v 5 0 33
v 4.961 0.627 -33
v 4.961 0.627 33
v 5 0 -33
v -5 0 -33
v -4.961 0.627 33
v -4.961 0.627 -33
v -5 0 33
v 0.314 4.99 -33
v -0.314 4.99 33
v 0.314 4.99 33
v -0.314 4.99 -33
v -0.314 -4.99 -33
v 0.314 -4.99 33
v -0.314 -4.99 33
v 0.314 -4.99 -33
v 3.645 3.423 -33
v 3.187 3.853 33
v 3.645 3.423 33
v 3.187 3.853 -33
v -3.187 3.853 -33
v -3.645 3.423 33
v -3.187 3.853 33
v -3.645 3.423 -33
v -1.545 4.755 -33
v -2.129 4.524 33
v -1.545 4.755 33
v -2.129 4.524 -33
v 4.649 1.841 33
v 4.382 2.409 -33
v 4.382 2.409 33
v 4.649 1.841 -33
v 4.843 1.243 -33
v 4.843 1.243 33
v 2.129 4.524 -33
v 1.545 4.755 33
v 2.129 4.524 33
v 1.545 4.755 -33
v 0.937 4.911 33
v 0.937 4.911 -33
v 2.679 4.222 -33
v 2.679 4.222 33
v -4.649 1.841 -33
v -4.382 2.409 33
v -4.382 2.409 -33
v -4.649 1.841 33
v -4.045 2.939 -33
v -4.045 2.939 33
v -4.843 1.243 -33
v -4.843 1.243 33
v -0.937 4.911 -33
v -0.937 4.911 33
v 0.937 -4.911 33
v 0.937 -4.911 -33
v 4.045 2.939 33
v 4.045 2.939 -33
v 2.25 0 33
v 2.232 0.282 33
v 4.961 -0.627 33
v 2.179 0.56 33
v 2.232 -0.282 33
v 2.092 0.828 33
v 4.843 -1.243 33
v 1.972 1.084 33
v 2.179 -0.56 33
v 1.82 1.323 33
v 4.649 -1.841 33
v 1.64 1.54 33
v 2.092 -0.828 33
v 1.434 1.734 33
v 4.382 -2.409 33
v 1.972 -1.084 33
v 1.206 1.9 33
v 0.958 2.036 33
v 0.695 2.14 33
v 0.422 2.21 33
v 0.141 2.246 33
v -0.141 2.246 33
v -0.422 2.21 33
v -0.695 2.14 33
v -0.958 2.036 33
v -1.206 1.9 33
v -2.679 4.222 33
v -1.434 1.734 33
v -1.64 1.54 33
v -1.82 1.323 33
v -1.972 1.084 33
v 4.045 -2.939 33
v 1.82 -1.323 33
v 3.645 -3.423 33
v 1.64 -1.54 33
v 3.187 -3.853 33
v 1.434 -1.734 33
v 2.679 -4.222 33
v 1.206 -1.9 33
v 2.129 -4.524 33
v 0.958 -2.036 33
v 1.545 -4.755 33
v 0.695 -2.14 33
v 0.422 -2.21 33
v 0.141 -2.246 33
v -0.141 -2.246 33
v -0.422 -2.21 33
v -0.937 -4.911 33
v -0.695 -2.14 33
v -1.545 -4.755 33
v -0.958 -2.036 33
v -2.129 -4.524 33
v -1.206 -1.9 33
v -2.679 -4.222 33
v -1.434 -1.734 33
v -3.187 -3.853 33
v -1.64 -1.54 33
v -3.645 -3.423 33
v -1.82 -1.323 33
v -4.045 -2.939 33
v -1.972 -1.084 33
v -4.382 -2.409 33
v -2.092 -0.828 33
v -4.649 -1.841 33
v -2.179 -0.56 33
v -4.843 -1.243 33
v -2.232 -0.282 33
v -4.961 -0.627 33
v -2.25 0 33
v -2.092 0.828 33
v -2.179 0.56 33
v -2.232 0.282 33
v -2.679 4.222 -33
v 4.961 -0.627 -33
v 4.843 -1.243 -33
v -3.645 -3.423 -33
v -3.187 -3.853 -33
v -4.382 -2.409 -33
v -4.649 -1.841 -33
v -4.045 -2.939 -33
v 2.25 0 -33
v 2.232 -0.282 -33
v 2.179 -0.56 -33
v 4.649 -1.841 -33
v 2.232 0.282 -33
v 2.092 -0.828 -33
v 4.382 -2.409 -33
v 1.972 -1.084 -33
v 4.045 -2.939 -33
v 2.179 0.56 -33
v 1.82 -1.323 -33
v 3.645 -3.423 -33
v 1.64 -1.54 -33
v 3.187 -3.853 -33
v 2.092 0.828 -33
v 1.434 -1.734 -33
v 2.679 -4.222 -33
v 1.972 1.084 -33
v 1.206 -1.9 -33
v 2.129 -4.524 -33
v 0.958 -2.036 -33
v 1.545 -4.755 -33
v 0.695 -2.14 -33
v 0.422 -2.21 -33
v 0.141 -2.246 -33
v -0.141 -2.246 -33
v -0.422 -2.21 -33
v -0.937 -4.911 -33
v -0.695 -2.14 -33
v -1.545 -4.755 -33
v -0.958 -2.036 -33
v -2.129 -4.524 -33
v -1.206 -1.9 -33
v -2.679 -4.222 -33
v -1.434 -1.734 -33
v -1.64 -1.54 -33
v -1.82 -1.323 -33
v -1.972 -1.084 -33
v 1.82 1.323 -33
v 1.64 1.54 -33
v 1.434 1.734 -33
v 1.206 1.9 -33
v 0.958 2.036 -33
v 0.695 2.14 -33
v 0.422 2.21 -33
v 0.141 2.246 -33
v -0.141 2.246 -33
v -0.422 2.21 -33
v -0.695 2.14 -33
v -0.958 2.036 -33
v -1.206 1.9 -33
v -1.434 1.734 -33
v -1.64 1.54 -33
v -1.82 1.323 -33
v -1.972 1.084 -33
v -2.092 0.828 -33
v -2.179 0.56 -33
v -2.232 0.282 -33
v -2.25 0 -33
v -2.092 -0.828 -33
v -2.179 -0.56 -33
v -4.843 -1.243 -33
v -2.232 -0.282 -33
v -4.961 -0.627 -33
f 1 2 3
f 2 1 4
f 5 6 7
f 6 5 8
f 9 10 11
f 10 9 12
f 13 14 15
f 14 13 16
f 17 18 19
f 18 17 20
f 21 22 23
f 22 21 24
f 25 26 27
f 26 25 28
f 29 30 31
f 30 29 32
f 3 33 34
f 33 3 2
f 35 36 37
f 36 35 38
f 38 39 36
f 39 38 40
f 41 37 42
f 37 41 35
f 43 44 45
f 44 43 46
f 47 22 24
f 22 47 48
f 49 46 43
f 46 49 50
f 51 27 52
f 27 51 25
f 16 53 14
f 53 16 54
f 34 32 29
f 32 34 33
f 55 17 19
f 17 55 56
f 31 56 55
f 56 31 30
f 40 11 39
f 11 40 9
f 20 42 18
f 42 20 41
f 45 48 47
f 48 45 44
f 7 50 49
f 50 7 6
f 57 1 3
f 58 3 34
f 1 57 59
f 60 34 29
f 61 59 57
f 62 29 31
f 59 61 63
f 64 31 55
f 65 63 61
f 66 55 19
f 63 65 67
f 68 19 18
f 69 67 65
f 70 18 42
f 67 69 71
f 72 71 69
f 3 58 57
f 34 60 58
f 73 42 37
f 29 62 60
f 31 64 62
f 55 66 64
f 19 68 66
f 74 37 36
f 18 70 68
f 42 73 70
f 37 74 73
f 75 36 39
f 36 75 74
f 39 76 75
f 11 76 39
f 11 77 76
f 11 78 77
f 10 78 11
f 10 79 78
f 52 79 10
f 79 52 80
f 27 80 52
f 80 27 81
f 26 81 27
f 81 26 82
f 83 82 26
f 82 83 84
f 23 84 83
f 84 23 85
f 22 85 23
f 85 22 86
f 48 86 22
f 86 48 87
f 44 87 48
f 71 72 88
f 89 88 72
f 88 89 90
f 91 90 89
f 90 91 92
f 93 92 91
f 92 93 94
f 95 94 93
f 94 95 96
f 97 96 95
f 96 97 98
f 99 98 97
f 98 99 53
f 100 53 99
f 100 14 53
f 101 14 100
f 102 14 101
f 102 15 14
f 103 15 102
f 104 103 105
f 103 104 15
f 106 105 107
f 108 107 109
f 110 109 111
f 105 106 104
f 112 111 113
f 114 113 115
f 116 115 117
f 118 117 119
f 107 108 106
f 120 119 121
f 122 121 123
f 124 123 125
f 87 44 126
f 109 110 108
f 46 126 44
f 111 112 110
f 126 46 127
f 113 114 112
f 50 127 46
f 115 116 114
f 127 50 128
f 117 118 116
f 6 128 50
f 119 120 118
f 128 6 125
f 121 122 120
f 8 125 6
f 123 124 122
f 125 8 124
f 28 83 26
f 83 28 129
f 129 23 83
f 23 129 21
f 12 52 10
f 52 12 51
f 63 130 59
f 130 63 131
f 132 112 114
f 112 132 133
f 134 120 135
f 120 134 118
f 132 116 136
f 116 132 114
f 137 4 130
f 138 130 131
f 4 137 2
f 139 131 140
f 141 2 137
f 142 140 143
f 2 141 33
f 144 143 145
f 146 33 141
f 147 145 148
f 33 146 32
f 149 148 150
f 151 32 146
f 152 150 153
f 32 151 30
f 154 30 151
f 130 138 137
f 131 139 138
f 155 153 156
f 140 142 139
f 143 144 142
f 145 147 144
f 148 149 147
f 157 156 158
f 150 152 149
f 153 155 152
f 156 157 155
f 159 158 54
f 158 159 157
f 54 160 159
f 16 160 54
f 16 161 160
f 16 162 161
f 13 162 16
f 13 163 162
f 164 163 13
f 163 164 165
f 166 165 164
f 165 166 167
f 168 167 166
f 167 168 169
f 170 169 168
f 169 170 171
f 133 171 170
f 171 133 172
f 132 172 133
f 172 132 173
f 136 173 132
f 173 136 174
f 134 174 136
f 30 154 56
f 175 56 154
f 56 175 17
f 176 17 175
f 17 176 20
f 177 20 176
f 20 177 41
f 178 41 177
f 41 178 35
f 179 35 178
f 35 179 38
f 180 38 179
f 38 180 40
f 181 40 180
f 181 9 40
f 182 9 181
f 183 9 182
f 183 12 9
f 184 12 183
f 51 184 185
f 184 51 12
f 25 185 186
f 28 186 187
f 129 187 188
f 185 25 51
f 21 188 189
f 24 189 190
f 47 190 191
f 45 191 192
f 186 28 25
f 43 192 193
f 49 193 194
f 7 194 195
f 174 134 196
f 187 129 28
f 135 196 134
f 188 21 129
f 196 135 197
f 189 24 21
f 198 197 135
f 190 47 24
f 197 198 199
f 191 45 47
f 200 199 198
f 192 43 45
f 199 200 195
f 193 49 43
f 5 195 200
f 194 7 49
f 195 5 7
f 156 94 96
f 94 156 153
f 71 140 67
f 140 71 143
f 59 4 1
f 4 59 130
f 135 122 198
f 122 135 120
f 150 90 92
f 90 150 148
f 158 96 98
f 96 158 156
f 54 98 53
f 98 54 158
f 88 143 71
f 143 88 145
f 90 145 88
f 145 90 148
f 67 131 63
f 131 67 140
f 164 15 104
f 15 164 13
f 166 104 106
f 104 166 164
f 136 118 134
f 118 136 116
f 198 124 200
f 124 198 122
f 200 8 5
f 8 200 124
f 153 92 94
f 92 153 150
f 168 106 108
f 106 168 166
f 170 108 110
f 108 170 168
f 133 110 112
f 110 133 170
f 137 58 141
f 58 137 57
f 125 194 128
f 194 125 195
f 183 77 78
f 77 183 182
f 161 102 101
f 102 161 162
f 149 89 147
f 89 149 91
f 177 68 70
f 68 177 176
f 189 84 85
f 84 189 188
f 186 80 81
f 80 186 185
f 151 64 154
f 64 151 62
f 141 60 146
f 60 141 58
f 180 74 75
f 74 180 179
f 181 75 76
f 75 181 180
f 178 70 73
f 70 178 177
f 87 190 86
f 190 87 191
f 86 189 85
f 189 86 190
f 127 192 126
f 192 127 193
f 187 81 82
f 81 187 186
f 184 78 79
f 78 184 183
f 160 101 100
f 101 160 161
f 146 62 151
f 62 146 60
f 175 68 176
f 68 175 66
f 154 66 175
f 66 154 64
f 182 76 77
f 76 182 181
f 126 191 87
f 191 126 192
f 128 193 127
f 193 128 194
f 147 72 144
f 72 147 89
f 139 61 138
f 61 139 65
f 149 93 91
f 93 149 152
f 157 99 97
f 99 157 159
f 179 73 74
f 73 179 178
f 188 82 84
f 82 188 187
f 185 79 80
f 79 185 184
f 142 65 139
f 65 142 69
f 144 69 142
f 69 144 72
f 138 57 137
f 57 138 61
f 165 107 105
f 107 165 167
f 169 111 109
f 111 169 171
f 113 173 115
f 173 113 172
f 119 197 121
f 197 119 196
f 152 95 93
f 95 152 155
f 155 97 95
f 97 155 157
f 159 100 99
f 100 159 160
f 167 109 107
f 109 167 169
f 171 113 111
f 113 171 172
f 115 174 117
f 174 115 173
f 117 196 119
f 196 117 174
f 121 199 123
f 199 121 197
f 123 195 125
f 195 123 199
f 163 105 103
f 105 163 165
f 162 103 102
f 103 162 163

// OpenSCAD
$fn = 50;


difference() {
	union() {
		translate(v = [0, 0, -33.0000000000]) {
			cylinder(h = 66, r = 5.0000000000);
		}
	}
	union() {
		translate(v = [0, 0, -100.0000000000]) {
			cylinder(h = 200, r = 2.2500000000);
		}
	}
}
